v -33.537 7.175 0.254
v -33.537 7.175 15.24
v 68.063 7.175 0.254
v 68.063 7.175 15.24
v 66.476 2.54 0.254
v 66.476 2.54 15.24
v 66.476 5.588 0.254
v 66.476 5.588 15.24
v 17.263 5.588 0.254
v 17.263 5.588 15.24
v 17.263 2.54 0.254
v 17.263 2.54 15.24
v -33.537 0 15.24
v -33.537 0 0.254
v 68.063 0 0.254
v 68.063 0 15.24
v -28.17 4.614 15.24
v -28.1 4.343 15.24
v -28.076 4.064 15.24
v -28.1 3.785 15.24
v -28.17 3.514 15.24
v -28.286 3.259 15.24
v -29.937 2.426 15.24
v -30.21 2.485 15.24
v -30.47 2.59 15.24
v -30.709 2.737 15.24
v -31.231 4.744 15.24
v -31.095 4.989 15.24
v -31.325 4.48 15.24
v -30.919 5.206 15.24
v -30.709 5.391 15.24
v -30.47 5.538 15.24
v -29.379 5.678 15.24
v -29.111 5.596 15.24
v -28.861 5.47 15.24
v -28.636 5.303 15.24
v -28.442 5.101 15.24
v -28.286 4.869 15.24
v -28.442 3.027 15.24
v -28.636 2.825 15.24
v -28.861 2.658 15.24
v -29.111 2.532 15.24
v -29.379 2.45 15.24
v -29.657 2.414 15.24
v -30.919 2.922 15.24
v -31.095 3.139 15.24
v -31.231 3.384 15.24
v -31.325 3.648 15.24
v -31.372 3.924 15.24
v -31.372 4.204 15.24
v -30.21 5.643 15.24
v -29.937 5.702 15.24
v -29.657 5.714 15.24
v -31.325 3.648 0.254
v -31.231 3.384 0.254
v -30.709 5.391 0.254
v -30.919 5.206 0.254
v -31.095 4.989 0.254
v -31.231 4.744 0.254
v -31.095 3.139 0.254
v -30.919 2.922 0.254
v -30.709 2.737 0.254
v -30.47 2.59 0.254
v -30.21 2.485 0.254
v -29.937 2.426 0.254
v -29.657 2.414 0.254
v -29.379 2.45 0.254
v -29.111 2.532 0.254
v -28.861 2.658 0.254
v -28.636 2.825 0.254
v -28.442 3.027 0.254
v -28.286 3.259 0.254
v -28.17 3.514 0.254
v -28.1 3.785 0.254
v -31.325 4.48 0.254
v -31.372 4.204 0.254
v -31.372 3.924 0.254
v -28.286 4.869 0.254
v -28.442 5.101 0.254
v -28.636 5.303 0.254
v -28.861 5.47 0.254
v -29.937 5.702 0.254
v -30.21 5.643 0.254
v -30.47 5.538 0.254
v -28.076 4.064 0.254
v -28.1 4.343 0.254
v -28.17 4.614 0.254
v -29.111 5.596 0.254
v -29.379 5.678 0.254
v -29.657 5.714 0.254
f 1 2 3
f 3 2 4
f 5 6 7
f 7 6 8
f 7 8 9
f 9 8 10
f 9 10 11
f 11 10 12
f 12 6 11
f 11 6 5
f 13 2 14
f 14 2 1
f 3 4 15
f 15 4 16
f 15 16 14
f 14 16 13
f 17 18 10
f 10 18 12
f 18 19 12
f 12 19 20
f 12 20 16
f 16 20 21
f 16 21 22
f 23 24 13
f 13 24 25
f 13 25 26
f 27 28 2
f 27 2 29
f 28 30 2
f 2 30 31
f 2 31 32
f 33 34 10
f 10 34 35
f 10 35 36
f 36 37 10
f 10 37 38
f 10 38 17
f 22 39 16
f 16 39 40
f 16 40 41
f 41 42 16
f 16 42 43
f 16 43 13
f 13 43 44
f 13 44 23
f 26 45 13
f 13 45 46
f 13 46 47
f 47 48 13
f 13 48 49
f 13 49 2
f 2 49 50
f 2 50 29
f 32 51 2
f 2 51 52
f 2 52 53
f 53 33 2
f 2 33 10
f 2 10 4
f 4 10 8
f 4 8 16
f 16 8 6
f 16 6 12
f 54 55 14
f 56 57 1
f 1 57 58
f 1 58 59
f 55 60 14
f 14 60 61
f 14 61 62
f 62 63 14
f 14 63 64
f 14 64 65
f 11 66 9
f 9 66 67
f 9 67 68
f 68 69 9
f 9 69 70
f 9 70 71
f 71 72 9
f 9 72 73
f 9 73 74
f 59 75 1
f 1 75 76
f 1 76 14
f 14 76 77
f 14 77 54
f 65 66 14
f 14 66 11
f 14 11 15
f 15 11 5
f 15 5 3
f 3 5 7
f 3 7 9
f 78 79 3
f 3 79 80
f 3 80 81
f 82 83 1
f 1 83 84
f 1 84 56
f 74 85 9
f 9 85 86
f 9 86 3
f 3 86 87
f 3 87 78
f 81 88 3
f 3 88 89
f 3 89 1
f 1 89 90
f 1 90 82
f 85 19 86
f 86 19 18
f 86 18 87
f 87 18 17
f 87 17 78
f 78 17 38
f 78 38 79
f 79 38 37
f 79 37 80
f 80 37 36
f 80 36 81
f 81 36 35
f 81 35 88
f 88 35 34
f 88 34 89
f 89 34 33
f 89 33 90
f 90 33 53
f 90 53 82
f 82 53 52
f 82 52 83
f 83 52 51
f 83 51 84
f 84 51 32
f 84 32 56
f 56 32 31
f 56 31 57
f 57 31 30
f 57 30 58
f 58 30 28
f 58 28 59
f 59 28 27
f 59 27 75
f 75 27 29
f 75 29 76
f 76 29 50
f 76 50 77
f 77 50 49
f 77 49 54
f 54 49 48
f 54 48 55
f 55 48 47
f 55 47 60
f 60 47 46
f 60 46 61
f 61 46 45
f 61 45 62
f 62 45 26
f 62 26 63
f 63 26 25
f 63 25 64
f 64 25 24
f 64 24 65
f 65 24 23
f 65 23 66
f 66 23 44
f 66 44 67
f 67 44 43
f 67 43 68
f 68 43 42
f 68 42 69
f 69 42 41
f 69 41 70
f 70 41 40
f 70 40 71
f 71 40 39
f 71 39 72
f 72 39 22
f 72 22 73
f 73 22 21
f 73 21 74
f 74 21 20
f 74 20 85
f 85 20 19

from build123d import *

# Parameters (mm, degrees)
SKETCH1_W                = 101.6
SKETCH1_H                = 25.4
BOSS_EXTRUDE1_DEPTH      = 2.54
BOSS_EXTRUDE2_DEPTH      = 19.05
BOSS_EXTRUDE2_DEPTH_BACK = 2.54
CUT_EXTRUDE1_DEPTH       = 3.81
CUT_EXTRUDE2_DEPTH       = 2.794
SKETCH5_W                = 101.6
SKETCH5_H                = 5.138615385
SKETCH5_H_2              = 5.275384615
CUT_EXTRUDE3_DEPTH       = 3.556
SKETCH6_R                = 1.651
CUT_EXTRUDE4_DEPTH       = 71.061780504


with BuildPart() as part:
    # Sketch1 → Boss-Extrude1 (new body)
    with BuildSketch(Plane(origin=(0, 0, 0), x_dir=(1, 0, 0), z_dir=(0, 1, 0))):
        with Locations((17.263096397, -7.815384615)):
            Rectangle(SKETCH1_W, SKETCH1_H)
    extrude(amount=BOSS_EXTRUDE1_DEPTH)

    # Sketch2 → Boss-Extrude2 (add, two sides: drawn at the far end of the back side and taken through both)
    with BuildSketch(Plane.XY.offset(-BOSS_EXTRUDE2_DEPTH_BACK)):
        Polygon((17.263096397, 2.54), (17.263096397, 5.588), (66.475596397, 5.588), (66.475596397, 2.54), (68.063096397, 2.54), (68.063096397, 7.1755), (-33.536903603, 7.1755), (-33.536903603, 2.54), align=None)
    extrude(amount=BOSS_EXTRUDE2_DEPTH + BOSS_EXTRUDE2_DEPTH_BACK)

    # Sketch3 → Cut-Extrude1 (cut)
    with BuildSketch(Plane.XY.offset(19.05)):
        Polygon((-33.536903603, 7.1755), (-33.536903603, 2.54), (17.263096397, 2.54), (17.263096397, 5.588), (66.475596397, 5.588), (66.475596397, 2.54), (68.063096397, 2.54), (68.063096397, 7.1755), align=None)
    extrude(amount=-CUT_EXTRUDE1_DEPTH, mode=Mode.SUBTRACT)

    # Sketch4 → Cut-Extrude2 (cut)
    with BuildSketch(Plane(origin=(0, 0, -2.54), x_dir=(-1, 0, 0), z_dir=(0, 0, -1))):
        Polygon((-68.063096397, 7.1755), (-68.063096397, 2.54), (-66.475596397, 2.54), (-66.475596397, 5.588), (-17.263096397, 5.588), (-17.263096397, 2.54), (33.536903603, 2.54), (33.536903603, 7.1755), align=None)
    extrude(amount=-CUT_EXTRUDE2_DEPTH, mode=Mode.SUBTRACT)

    # Sketch5 → Cut-Extrude3 (cut)
    with BuildSketch(Plane(origin=(0, 2.54, 0), x_dir=(1, 0, 0), z_dir=(0, 1, 0))):
        with Locations((17.263096397, 2.315307693)):
            Rectangle(SKETCH5_W, SKETCH5_H)
        with Locations((17.263096397, -17.877692308)):
            Rectangle(SKETCH5_W, SKETCH5_H_2)
    extrude(amount=-CUT_EXTRUDE3_DEPTH, mode=Mode.SUBTRACT)

    # Sketch6 → Cut-Extrude4 (cut, through all)
    with BuildSketch(Plane.XY.offset(15.24)):
        with Locations((-29.726903603, 4.064)):
            Circle(SKETCH6_R)
    extrude(amount=-CUT_EXTRUDE4_DEPTH, mode=Mode.SUBTRACT)


solid = part.part
